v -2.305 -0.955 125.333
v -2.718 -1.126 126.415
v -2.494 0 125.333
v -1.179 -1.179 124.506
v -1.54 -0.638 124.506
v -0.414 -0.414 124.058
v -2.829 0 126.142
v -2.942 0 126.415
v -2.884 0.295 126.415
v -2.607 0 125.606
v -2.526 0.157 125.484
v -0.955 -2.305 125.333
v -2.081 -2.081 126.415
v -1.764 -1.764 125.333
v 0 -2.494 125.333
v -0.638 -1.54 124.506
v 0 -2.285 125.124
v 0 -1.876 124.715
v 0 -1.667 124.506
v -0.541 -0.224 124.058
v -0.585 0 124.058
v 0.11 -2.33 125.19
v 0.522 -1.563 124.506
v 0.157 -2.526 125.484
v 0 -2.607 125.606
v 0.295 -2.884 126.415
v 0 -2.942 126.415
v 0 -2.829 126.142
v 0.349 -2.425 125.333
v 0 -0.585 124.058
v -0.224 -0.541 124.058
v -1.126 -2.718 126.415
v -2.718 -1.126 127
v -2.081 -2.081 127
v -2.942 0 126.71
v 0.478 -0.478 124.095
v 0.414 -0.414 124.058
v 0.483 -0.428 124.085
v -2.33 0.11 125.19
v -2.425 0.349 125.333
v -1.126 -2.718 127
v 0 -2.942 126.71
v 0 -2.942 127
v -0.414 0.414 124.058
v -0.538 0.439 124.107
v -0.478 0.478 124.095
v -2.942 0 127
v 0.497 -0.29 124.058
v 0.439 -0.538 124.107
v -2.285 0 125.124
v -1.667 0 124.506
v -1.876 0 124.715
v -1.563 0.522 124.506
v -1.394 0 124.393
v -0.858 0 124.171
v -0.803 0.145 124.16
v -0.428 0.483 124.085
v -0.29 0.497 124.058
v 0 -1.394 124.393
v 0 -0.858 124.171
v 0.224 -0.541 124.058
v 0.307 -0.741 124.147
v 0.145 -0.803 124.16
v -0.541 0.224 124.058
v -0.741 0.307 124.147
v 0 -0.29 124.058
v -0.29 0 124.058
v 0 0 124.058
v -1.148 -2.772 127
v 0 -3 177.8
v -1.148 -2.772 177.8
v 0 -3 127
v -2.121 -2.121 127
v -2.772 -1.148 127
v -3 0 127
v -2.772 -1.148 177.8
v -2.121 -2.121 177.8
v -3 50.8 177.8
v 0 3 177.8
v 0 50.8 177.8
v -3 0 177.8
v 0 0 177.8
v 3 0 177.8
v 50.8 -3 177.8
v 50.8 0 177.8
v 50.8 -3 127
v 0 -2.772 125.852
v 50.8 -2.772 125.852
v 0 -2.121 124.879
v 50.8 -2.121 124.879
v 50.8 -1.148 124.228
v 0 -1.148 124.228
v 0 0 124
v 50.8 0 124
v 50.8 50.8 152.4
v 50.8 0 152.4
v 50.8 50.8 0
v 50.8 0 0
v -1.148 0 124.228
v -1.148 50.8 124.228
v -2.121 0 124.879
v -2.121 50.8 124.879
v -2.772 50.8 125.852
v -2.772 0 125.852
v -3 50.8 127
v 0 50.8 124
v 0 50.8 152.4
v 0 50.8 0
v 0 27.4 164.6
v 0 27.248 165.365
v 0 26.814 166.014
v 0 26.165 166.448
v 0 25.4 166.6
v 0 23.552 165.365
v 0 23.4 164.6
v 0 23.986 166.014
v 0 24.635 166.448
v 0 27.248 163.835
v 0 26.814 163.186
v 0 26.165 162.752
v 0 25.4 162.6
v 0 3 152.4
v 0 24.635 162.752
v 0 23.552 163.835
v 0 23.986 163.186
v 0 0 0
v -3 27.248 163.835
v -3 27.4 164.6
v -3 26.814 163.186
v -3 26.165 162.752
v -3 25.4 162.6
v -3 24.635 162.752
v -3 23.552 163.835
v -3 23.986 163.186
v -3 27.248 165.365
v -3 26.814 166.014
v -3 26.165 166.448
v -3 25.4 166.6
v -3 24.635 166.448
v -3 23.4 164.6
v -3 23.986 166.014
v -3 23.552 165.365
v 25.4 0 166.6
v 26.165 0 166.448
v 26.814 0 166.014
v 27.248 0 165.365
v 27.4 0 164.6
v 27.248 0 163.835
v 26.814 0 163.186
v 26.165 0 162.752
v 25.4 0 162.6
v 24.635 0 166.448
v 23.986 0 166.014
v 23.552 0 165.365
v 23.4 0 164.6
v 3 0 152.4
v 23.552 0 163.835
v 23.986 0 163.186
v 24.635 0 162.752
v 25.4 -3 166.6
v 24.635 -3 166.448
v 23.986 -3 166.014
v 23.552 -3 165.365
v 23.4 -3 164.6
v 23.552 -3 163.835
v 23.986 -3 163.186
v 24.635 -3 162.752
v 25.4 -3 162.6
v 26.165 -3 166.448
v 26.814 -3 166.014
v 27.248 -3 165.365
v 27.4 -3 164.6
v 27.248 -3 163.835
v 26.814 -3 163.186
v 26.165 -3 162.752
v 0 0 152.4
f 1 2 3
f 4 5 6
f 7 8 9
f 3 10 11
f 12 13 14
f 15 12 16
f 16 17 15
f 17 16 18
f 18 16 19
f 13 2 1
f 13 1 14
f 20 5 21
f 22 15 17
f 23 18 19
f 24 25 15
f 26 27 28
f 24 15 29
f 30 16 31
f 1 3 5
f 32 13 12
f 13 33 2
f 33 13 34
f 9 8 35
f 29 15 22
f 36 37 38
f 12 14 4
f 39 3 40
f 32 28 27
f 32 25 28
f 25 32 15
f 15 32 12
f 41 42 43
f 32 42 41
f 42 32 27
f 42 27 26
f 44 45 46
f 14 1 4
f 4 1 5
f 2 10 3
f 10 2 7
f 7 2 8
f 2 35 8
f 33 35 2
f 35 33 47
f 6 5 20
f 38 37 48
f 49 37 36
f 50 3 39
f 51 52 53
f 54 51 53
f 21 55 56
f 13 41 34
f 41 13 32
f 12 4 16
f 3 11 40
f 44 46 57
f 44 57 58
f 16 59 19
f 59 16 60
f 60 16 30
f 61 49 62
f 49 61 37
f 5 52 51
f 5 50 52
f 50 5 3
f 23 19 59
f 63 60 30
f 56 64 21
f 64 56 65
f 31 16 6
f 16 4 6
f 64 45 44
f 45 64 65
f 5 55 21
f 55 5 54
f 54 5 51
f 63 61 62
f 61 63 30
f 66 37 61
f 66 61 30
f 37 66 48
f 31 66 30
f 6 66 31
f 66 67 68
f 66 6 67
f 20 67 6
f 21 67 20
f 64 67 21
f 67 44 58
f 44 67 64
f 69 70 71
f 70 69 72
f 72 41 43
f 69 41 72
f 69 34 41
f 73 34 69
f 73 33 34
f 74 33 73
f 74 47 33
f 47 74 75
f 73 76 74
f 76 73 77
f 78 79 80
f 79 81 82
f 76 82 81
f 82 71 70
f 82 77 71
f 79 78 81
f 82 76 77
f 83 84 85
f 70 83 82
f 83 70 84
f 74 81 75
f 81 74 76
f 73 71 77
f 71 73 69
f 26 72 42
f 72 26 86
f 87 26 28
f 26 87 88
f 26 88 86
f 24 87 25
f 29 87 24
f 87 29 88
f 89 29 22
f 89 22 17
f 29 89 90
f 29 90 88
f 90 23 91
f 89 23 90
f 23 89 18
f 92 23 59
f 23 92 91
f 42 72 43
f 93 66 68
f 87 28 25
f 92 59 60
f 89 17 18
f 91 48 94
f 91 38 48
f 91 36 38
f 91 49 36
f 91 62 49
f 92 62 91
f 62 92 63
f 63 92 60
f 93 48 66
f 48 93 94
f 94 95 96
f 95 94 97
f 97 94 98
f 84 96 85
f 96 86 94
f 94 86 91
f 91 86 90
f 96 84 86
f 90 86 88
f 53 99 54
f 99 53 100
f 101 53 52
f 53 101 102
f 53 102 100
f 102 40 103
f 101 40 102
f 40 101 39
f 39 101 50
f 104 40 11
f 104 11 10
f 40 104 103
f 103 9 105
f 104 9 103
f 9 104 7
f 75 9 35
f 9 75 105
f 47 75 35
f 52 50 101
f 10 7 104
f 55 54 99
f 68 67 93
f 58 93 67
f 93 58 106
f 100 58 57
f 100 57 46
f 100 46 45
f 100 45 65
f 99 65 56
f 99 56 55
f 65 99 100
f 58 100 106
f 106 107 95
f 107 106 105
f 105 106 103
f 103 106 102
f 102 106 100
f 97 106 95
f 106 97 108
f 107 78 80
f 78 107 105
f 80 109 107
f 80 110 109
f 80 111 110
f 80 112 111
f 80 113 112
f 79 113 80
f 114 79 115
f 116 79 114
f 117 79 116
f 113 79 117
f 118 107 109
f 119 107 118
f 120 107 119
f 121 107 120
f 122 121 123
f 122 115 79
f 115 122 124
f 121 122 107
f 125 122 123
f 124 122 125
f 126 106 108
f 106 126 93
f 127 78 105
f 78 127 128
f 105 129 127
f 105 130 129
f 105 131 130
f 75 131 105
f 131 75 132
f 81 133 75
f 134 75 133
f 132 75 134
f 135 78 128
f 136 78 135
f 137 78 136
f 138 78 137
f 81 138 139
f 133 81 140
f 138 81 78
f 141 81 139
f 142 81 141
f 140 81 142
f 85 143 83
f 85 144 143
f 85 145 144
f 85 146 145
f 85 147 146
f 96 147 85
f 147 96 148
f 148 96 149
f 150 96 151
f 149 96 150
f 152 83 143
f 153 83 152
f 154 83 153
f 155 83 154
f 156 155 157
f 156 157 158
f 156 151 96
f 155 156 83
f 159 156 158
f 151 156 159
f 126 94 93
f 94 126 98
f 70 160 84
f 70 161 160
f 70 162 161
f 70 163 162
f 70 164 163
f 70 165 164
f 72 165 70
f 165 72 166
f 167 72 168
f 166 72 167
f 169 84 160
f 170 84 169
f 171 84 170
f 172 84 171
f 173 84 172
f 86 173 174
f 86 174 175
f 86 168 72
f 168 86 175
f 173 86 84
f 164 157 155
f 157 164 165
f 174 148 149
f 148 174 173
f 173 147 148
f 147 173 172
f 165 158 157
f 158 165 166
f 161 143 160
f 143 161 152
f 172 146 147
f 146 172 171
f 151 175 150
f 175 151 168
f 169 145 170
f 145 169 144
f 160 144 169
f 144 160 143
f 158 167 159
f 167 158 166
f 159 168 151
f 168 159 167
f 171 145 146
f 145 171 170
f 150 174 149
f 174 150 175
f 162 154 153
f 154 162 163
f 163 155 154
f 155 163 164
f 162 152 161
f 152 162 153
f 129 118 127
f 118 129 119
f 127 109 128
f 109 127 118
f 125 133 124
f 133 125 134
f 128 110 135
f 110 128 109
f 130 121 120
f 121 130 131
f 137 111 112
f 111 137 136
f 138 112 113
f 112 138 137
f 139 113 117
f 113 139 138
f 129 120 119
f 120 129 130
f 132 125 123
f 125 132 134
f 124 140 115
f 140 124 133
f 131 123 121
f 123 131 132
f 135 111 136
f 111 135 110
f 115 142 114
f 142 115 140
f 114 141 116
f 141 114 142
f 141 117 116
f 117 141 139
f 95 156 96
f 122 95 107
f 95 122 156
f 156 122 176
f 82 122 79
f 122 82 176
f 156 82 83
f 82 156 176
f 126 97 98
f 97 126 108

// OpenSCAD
$fn=16;
w = 50.8;
h = 152.4;

cube([w,w,h]);
difference() {
    translate([0,0,h-25.4]) {
        sphere(r=3);
        cylinder(h=50.8,r=3);
        rotate([0,90,0]) cylinder(h=w,r=3);
        rotate([-90,0,0]) cylinder(h=w,r=3);
        translate([-3,0,0])
            cube([3,w,50.8]);
        translate([0,-3,0])
            cube([w,3,50.8]);
    }
    translate([0,0,h]) cube([3,3,26]);
    translate([0,0,h+12.2]) {
        for (i = [0:1]) rotate([0,0,i*90])
            translate([w/2,-6,0])
                rotate([-90,0,0]) cylinder(h=12,r=2);
    }
}
